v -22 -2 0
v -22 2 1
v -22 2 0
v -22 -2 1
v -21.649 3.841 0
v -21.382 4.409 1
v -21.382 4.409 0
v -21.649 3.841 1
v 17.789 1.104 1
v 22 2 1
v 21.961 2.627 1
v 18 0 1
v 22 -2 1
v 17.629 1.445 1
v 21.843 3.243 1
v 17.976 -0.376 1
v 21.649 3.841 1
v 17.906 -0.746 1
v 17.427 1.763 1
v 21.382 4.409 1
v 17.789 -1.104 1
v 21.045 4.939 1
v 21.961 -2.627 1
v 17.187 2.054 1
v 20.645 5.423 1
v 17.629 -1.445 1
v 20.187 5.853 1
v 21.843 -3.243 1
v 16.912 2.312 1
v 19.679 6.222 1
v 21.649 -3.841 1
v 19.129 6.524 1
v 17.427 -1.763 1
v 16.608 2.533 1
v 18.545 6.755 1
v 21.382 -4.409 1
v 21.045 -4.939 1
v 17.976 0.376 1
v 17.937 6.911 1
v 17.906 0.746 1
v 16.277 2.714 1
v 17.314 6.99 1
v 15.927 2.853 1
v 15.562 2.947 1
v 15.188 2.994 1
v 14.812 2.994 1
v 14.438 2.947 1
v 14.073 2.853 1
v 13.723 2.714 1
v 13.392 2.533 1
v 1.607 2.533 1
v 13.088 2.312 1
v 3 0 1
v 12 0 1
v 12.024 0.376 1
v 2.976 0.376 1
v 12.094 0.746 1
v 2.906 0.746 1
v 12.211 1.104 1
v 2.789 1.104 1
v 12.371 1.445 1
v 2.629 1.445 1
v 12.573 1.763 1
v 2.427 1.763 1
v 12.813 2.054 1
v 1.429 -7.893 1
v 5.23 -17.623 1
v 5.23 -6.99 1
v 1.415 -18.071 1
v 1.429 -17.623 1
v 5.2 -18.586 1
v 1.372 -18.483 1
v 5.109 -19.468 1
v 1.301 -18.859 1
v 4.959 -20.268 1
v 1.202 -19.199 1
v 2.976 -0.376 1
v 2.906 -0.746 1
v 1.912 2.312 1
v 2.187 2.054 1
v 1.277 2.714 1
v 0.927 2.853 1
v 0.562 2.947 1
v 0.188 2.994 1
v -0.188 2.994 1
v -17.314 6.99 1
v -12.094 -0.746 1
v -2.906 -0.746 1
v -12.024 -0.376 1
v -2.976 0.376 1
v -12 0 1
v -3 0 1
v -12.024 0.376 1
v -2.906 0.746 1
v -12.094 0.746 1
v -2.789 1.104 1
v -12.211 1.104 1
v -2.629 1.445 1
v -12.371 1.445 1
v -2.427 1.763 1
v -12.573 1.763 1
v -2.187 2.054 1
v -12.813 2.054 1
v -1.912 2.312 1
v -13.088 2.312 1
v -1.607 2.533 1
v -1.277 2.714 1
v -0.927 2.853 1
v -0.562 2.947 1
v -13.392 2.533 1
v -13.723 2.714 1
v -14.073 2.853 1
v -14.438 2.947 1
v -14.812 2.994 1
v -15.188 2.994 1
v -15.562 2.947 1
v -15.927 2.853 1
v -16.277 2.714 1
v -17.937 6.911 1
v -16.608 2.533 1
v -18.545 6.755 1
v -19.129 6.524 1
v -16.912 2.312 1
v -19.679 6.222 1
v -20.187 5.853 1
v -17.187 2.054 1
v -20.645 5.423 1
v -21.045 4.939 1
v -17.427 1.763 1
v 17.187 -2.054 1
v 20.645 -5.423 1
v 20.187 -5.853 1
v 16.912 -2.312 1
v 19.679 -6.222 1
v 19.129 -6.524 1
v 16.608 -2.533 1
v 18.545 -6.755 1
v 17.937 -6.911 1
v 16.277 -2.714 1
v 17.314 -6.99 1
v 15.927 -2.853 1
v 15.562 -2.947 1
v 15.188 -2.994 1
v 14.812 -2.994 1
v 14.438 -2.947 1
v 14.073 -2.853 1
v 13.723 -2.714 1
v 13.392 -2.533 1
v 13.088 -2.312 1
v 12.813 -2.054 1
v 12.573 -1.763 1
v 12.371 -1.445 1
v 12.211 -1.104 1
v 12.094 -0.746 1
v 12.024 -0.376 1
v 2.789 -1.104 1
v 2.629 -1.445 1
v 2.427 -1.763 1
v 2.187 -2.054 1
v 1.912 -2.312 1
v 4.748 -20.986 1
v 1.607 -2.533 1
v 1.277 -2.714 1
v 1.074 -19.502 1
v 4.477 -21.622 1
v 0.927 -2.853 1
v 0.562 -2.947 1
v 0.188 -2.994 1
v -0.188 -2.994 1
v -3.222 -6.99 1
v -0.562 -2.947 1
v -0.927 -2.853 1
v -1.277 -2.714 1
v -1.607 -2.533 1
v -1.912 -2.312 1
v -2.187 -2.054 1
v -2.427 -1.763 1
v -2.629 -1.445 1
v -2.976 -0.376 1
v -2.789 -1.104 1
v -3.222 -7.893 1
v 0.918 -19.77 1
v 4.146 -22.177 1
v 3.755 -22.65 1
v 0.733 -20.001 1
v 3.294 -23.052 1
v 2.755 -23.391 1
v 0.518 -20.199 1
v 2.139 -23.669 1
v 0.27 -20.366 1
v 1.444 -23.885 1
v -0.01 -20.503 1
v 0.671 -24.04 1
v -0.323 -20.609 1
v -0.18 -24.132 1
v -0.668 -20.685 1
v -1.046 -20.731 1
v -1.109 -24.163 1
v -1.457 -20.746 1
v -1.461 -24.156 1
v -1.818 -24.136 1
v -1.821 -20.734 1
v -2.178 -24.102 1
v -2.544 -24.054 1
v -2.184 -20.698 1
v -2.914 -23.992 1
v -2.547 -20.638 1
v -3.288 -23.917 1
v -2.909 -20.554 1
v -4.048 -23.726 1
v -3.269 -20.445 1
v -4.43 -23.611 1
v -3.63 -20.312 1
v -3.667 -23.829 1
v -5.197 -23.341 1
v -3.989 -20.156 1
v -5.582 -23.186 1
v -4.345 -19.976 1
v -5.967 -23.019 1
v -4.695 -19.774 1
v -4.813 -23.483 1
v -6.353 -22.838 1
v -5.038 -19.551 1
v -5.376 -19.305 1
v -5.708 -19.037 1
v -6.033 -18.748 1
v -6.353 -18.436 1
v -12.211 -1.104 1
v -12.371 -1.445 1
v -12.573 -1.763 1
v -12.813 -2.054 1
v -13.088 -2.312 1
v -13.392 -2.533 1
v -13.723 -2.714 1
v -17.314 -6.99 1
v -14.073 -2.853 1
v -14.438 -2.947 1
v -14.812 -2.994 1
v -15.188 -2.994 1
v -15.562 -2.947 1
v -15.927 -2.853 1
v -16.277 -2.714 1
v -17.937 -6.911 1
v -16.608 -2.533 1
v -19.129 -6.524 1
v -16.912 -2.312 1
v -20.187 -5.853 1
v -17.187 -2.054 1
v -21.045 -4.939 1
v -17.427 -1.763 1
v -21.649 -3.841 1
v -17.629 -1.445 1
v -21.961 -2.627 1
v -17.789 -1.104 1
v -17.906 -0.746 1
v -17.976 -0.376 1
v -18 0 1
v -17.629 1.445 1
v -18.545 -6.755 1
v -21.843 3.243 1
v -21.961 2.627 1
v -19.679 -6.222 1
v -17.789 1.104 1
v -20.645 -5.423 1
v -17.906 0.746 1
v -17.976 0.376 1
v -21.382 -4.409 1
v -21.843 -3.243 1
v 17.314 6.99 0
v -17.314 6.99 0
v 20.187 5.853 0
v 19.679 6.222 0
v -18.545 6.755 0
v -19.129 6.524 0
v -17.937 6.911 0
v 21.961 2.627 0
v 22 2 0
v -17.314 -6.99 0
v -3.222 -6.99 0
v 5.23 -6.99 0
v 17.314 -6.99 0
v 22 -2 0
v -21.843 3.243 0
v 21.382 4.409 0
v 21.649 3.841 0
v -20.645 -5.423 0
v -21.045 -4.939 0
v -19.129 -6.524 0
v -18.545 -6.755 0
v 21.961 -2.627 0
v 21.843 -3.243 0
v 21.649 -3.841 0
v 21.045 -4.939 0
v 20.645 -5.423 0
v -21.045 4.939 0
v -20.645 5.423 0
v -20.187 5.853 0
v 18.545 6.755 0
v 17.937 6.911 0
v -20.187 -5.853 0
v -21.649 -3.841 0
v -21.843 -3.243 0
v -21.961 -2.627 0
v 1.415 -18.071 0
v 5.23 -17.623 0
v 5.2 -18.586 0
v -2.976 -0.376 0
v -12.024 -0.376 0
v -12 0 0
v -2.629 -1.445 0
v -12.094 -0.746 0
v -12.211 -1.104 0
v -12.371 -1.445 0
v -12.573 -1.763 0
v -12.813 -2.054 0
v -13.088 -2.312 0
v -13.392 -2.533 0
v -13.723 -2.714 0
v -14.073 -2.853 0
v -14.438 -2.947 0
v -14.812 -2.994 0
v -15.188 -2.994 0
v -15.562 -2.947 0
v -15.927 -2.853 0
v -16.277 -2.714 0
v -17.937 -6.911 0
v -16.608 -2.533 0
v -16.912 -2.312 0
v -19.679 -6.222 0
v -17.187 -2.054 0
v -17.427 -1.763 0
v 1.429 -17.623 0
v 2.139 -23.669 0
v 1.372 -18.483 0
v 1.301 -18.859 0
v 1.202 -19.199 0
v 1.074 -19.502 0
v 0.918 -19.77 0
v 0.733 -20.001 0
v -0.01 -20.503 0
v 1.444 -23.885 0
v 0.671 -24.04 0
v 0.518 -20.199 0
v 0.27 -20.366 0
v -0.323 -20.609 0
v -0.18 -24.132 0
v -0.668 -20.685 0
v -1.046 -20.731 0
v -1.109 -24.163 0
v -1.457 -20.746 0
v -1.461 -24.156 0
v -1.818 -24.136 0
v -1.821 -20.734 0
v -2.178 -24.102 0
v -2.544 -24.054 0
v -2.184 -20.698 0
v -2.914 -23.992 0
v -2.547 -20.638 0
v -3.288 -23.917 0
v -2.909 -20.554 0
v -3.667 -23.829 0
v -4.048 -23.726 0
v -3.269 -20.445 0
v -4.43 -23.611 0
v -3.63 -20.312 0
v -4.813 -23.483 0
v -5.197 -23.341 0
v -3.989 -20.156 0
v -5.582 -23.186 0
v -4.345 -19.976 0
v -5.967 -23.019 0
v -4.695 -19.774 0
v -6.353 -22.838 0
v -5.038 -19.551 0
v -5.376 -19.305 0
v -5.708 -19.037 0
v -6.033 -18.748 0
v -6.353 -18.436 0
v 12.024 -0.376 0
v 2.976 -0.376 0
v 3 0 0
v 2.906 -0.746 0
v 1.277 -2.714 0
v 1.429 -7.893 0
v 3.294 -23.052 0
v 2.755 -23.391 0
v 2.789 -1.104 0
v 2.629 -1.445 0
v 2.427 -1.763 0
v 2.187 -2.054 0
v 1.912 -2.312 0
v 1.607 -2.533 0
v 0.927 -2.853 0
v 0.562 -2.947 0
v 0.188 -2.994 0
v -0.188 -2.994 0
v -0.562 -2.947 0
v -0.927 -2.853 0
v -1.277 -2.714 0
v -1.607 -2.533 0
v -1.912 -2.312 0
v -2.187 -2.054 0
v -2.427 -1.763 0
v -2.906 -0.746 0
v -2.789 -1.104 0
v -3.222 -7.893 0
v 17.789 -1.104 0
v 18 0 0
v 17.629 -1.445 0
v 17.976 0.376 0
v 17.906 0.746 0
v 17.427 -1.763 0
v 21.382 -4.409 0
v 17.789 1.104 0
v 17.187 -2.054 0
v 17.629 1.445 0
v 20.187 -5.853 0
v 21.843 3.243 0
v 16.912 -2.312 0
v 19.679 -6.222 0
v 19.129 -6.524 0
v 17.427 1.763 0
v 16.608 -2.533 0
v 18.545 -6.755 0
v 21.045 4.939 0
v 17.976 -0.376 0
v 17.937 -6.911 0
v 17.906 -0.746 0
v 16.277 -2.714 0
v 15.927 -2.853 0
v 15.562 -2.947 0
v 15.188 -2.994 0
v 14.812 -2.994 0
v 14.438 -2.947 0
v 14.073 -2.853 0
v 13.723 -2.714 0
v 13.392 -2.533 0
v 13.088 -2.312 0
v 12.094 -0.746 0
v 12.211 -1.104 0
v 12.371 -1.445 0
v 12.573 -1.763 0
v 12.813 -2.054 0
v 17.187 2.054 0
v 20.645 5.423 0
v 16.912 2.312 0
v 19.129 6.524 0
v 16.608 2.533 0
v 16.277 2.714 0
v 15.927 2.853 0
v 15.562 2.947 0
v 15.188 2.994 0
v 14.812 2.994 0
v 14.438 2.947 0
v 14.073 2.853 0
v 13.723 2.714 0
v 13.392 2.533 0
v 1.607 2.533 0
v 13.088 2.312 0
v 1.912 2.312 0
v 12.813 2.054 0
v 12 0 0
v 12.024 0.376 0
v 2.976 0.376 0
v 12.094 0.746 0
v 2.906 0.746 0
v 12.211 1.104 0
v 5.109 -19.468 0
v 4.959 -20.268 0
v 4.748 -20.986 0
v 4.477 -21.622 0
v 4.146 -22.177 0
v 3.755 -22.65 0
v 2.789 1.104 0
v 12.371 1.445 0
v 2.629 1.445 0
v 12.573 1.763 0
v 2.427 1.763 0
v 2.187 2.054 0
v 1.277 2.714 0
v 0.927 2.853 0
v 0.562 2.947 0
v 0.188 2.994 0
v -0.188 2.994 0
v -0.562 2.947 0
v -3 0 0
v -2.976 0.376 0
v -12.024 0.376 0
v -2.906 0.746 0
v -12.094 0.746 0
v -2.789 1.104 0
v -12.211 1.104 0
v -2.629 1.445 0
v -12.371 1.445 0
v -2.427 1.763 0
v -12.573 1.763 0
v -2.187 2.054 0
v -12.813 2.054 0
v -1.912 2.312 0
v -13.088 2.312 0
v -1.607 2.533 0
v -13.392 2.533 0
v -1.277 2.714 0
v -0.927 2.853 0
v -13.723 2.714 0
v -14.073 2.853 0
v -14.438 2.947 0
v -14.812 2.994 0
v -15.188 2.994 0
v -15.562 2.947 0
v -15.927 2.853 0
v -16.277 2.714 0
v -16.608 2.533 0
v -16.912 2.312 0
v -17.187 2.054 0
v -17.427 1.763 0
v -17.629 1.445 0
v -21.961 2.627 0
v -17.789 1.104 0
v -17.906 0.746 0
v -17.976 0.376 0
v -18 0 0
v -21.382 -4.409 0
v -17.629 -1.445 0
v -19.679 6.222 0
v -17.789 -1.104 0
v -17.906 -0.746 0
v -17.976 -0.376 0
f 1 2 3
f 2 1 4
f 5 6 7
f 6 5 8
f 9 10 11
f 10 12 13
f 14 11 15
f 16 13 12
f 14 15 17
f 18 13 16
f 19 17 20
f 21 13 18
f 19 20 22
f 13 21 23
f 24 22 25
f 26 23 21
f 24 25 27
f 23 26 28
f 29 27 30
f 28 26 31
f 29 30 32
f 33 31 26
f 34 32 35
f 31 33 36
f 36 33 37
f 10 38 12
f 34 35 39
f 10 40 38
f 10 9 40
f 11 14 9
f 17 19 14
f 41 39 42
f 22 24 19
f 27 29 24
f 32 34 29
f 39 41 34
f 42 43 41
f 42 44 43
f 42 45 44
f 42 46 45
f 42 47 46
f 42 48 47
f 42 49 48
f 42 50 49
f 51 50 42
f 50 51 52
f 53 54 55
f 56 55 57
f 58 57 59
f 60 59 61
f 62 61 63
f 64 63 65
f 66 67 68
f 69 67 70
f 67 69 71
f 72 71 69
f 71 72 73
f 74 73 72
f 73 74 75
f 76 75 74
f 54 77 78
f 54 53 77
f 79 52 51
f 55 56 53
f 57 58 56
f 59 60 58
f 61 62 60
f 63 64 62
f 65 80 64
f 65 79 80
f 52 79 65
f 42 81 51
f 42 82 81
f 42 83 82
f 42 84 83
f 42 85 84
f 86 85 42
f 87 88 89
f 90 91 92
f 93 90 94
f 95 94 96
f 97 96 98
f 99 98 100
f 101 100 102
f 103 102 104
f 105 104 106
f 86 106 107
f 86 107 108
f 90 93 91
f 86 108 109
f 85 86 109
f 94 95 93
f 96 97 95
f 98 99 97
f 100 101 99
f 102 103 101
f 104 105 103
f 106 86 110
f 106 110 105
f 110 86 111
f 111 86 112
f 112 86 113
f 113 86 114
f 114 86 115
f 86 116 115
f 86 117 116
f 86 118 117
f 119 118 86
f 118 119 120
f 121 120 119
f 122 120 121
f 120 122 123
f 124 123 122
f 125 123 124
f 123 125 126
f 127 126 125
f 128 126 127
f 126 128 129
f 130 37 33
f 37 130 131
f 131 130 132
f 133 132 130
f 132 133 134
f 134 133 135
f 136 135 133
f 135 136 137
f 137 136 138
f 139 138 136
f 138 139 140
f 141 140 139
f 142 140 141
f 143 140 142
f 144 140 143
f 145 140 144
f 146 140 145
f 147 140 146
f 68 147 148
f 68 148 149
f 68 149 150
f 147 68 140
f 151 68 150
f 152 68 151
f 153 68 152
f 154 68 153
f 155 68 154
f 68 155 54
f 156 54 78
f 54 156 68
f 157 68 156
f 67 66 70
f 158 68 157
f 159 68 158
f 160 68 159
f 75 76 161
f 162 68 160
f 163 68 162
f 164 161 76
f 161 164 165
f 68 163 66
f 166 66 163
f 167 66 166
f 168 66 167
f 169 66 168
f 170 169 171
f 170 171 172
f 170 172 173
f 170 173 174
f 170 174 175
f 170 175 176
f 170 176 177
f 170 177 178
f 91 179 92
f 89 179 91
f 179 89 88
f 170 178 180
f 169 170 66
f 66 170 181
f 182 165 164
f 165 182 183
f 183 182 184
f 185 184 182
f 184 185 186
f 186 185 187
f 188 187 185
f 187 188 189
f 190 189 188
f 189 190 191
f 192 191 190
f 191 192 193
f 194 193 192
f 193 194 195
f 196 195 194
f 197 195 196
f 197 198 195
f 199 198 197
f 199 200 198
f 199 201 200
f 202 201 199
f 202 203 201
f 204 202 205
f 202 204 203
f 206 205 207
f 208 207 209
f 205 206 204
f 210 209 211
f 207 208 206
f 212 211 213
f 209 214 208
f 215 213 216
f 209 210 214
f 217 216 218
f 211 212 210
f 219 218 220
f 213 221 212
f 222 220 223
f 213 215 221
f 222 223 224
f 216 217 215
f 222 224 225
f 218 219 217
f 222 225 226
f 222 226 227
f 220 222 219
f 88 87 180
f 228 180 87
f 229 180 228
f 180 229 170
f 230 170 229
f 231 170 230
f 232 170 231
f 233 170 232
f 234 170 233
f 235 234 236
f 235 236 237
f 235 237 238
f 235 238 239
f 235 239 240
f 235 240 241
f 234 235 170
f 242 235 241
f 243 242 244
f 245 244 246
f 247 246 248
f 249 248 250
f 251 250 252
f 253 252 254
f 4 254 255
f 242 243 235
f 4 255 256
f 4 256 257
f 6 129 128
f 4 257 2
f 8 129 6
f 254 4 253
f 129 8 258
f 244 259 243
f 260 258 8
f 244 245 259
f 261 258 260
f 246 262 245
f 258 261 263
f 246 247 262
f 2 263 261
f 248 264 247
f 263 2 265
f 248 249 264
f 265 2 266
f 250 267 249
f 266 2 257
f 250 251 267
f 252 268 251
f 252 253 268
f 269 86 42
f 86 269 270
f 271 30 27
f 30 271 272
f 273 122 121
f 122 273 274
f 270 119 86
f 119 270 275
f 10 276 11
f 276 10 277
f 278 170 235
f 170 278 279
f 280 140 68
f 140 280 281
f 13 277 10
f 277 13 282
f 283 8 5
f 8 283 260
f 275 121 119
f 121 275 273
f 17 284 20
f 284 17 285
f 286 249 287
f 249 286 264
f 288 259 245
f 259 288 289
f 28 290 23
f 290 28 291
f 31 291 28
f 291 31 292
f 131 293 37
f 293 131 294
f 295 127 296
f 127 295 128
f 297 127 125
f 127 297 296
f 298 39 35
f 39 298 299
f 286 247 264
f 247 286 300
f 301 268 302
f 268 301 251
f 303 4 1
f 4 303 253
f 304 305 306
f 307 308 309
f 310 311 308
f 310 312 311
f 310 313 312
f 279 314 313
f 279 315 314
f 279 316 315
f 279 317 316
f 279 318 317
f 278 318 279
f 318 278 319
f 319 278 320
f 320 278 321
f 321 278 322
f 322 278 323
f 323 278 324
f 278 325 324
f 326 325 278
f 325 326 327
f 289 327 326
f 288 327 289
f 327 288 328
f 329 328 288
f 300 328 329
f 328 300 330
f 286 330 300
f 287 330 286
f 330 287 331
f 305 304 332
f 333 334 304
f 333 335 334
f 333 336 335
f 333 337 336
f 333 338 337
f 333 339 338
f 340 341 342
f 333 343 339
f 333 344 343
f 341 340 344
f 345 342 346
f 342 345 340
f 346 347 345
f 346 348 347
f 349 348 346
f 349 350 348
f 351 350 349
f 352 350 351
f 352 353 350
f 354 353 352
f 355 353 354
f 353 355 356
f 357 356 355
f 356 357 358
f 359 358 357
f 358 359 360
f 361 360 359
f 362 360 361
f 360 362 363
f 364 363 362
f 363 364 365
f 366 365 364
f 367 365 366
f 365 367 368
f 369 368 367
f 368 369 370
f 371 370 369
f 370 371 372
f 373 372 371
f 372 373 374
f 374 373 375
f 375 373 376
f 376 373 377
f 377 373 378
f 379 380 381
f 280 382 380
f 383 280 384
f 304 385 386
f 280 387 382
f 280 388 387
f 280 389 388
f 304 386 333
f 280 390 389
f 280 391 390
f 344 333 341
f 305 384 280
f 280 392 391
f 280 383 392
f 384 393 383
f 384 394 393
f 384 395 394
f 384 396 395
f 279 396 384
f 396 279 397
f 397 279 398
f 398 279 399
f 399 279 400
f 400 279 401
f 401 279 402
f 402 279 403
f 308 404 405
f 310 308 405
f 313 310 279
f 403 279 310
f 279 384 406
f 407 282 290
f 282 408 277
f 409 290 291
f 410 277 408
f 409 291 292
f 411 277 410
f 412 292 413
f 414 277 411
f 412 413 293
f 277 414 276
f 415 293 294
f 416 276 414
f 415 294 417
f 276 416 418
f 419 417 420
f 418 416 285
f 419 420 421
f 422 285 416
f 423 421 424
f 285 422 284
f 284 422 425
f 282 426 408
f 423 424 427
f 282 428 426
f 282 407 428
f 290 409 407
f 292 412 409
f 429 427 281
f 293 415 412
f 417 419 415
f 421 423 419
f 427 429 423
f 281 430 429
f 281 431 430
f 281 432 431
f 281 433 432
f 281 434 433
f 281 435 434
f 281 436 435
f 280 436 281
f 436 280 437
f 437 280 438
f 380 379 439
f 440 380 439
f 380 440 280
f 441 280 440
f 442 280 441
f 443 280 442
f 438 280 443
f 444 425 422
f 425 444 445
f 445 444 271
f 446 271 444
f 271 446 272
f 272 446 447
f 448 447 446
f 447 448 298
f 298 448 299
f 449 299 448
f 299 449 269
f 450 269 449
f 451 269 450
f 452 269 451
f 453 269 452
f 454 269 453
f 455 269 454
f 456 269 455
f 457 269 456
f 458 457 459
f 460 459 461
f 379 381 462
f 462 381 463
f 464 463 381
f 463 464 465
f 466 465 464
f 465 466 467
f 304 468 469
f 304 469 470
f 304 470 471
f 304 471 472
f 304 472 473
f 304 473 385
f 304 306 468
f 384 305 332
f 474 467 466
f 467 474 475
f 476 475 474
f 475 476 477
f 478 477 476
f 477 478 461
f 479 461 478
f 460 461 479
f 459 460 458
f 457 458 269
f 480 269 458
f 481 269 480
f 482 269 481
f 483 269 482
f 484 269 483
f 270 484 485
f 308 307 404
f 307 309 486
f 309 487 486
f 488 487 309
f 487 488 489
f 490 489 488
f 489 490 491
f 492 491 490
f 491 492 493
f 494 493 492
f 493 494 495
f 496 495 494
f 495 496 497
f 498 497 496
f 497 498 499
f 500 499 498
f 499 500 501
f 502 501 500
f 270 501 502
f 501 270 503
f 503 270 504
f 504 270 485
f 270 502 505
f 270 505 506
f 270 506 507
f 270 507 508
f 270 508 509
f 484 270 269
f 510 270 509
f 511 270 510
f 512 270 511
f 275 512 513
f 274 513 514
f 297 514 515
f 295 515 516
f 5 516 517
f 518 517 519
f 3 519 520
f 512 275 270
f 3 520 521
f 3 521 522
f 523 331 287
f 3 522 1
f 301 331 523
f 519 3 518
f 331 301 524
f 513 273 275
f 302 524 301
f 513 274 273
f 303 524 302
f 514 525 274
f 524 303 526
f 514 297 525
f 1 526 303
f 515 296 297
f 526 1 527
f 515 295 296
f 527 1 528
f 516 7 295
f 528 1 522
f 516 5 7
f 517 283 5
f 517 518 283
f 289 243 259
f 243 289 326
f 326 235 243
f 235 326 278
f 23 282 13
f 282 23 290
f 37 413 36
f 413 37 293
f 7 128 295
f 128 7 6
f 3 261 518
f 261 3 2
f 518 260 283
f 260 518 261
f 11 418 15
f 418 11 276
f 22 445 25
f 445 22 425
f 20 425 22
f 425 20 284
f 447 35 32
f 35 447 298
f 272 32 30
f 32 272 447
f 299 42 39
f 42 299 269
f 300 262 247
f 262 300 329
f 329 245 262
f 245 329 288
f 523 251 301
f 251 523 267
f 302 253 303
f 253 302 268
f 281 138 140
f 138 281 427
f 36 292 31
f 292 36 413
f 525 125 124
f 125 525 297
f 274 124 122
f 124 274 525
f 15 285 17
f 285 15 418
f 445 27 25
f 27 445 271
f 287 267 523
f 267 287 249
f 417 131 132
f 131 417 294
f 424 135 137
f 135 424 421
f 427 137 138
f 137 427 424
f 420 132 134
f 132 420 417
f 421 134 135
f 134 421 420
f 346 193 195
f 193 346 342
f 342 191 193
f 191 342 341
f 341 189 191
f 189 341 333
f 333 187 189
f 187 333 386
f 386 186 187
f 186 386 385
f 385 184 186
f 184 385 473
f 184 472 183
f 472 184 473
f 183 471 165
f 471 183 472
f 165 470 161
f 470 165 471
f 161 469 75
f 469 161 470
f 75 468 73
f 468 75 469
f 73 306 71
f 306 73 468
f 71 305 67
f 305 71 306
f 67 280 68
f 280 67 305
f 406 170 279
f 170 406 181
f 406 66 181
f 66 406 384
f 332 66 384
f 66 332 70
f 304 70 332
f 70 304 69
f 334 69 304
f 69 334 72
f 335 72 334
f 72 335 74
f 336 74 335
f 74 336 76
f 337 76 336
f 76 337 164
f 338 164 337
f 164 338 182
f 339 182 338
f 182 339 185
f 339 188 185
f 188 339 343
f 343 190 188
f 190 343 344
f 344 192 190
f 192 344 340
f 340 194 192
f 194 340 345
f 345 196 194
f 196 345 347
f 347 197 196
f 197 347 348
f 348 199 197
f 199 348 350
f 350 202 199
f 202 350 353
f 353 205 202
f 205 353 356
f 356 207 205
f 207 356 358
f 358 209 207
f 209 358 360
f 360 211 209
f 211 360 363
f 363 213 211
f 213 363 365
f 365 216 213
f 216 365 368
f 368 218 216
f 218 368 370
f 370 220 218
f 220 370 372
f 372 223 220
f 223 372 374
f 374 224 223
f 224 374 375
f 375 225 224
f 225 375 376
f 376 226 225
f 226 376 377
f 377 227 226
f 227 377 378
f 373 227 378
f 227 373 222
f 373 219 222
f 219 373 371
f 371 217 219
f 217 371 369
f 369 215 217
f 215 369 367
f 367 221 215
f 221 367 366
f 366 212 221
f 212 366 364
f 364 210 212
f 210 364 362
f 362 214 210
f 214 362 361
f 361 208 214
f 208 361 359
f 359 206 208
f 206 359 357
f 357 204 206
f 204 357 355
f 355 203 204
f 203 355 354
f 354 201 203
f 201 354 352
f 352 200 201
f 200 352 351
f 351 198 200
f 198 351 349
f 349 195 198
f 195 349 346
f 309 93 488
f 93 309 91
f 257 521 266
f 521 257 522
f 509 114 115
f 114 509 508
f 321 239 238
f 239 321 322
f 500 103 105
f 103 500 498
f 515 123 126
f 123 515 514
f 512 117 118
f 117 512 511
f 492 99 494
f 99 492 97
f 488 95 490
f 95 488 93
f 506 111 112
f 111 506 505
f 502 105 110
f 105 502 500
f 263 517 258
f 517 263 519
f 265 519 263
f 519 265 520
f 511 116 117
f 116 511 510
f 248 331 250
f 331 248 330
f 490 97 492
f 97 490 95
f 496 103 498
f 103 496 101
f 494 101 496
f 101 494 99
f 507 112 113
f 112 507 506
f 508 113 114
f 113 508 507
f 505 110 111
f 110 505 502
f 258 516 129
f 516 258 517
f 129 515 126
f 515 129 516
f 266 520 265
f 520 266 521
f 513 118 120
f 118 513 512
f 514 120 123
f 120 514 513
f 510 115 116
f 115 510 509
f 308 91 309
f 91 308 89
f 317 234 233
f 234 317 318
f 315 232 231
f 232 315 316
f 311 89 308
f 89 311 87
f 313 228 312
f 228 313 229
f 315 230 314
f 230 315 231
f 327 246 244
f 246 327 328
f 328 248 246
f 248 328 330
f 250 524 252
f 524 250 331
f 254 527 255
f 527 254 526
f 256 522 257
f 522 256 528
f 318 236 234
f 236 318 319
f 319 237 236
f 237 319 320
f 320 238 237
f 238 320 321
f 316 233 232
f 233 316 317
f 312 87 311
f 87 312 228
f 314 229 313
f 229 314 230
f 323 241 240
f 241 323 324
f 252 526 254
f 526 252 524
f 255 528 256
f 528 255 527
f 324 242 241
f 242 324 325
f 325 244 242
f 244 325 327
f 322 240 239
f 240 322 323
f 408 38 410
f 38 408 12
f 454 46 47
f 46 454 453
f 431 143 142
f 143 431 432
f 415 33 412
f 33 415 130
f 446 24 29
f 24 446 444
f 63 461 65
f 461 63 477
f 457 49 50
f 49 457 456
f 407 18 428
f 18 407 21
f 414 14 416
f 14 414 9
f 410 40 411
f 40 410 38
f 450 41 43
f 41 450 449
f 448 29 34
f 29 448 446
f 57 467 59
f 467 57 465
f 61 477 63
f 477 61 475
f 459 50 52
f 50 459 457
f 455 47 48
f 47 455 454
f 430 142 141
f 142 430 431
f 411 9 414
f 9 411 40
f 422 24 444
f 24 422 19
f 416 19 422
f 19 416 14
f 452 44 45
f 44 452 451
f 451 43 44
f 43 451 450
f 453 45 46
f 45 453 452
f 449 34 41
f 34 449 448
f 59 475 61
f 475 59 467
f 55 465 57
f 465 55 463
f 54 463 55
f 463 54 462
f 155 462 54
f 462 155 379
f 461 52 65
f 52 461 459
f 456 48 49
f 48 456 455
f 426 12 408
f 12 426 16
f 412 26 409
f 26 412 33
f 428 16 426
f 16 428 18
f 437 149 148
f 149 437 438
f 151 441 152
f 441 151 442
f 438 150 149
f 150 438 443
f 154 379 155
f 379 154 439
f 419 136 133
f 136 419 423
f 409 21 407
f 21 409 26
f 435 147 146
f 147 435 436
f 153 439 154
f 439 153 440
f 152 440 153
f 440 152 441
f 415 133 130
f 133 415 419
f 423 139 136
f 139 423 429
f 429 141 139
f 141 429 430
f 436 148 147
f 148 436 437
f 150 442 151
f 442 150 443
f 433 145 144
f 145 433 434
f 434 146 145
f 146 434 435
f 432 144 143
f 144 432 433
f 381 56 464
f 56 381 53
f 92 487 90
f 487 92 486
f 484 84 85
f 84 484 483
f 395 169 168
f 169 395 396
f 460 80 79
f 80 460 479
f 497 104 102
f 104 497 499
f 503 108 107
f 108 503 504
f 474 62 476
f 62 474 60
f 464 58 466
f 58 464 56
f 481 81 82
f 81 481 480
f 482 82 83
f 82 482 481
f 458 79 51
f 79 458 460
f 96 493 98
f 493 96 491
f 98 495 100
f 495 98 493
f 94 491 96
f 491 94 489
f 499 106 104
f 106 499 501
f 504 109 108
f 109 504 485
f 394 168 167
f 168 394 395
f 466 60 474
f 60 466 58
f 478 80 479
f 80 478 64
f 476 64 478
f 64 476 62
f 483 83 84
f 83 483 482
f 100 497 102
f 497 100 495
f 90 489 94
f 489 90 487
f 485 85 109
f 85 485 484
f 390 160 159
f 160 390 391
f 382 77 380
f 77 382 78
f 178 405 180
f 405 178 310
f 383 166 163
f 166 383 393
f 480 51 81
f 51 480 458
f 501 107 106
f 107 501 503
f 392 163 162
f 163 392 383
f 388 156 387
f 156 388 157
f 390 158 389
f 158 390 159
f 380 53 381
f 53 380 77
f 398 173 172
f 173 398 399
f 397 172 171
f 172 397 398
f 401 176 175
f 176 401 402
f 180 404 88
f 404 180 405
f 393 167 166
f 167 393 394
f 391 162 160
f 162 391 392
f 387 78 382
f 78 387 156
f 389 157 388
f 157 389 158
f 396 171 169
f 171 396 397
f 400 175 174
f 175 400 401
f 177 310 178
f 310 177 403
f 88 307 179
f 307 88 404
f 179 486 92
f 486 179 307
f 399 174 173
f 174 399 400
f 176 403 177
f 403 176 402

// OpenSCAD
$fn = 50;


difference() {
	union() {
		translate(v = [0, 0, 0]) {
			rotate(a = [0, 0, 0]) {
				hull() {
					translate(v = [-17.0000000000, 2.0000000000, 0]) {
						rotate(a = [0, 0, 0]) {
							translate(v = [0, 0, 0]) {
								rotate(a = [0, 0, 0]) {
									cylinder(h = 1, r = 5);
								}
							}
						}
					}
					translate(v = [17.0000000000, 2.0000000000, 0]) {
						rotate(a = [0, 0, 0]) {
							translate(v = [0, 0, 0]) {
								rotate(a = [0, 0, 0]) {
									cylinder(h = 1, r = 5);
								}
							}
						}
					}
					translate(v = [-17.0000000000, -2.0000000000, 0]) {
						rotate(a = [0, 0, 0]) {
							translate(v = [0, 0, 0]) {
								rotate(a = [0, 0, 0]) {
									cylinder(h = 1, r = 5);
								}
							}
						}
					}
					translate(v = [17.0000000000, -2.0000000000, 0]) {
						rotate(a = [0, 0, 0]) {
							translate(v = [0, 0, 0]) {
								rotate(a = [0, 0, 0]) {
									cylinder(h = 1, r = 5);
								}
							}
						}
					}
				}
			}
		}
		translate(v = [0, -5, 0]) {
			rotate(a = [0, 0, 0]) {
				linear_extrude(height = 1) {
					text(font = "DejaVu Sans Mono:style=Bold", halign = "center", size = 19.0000000000, text = "J", valign = "top");
				}
			}
		}
	}
	union() {
		translate(v = [-15.0000000000, 0.0000000000, -125.0000000000]) {
			rotate(a = [0, 0, 0]) {
				cylinder(h = 250, r = 3.0000000000);
			}
		}
		translate(v = [15.0000000000, 0.0000000000, -125.0000000000]) {
			rotate(a = [0, 0, 0]) {
				cylinder(h = 250, r = 3.0000000000);
			}
		}
		translate(v = [15.0000000000, 0.0000000000, -125.0000000000]) {
			rotate(a = [0, 0, 0]) {
				cylinder(h = 250, r = 3.0000000000);
			}
		}
		translate(v = [0, 0, -125.0000000000]) {
			rotate(a = [0, 0, 0]) {
				cylinder(h = 250, r = 3.0000000000);
			}
		}
	}
}
